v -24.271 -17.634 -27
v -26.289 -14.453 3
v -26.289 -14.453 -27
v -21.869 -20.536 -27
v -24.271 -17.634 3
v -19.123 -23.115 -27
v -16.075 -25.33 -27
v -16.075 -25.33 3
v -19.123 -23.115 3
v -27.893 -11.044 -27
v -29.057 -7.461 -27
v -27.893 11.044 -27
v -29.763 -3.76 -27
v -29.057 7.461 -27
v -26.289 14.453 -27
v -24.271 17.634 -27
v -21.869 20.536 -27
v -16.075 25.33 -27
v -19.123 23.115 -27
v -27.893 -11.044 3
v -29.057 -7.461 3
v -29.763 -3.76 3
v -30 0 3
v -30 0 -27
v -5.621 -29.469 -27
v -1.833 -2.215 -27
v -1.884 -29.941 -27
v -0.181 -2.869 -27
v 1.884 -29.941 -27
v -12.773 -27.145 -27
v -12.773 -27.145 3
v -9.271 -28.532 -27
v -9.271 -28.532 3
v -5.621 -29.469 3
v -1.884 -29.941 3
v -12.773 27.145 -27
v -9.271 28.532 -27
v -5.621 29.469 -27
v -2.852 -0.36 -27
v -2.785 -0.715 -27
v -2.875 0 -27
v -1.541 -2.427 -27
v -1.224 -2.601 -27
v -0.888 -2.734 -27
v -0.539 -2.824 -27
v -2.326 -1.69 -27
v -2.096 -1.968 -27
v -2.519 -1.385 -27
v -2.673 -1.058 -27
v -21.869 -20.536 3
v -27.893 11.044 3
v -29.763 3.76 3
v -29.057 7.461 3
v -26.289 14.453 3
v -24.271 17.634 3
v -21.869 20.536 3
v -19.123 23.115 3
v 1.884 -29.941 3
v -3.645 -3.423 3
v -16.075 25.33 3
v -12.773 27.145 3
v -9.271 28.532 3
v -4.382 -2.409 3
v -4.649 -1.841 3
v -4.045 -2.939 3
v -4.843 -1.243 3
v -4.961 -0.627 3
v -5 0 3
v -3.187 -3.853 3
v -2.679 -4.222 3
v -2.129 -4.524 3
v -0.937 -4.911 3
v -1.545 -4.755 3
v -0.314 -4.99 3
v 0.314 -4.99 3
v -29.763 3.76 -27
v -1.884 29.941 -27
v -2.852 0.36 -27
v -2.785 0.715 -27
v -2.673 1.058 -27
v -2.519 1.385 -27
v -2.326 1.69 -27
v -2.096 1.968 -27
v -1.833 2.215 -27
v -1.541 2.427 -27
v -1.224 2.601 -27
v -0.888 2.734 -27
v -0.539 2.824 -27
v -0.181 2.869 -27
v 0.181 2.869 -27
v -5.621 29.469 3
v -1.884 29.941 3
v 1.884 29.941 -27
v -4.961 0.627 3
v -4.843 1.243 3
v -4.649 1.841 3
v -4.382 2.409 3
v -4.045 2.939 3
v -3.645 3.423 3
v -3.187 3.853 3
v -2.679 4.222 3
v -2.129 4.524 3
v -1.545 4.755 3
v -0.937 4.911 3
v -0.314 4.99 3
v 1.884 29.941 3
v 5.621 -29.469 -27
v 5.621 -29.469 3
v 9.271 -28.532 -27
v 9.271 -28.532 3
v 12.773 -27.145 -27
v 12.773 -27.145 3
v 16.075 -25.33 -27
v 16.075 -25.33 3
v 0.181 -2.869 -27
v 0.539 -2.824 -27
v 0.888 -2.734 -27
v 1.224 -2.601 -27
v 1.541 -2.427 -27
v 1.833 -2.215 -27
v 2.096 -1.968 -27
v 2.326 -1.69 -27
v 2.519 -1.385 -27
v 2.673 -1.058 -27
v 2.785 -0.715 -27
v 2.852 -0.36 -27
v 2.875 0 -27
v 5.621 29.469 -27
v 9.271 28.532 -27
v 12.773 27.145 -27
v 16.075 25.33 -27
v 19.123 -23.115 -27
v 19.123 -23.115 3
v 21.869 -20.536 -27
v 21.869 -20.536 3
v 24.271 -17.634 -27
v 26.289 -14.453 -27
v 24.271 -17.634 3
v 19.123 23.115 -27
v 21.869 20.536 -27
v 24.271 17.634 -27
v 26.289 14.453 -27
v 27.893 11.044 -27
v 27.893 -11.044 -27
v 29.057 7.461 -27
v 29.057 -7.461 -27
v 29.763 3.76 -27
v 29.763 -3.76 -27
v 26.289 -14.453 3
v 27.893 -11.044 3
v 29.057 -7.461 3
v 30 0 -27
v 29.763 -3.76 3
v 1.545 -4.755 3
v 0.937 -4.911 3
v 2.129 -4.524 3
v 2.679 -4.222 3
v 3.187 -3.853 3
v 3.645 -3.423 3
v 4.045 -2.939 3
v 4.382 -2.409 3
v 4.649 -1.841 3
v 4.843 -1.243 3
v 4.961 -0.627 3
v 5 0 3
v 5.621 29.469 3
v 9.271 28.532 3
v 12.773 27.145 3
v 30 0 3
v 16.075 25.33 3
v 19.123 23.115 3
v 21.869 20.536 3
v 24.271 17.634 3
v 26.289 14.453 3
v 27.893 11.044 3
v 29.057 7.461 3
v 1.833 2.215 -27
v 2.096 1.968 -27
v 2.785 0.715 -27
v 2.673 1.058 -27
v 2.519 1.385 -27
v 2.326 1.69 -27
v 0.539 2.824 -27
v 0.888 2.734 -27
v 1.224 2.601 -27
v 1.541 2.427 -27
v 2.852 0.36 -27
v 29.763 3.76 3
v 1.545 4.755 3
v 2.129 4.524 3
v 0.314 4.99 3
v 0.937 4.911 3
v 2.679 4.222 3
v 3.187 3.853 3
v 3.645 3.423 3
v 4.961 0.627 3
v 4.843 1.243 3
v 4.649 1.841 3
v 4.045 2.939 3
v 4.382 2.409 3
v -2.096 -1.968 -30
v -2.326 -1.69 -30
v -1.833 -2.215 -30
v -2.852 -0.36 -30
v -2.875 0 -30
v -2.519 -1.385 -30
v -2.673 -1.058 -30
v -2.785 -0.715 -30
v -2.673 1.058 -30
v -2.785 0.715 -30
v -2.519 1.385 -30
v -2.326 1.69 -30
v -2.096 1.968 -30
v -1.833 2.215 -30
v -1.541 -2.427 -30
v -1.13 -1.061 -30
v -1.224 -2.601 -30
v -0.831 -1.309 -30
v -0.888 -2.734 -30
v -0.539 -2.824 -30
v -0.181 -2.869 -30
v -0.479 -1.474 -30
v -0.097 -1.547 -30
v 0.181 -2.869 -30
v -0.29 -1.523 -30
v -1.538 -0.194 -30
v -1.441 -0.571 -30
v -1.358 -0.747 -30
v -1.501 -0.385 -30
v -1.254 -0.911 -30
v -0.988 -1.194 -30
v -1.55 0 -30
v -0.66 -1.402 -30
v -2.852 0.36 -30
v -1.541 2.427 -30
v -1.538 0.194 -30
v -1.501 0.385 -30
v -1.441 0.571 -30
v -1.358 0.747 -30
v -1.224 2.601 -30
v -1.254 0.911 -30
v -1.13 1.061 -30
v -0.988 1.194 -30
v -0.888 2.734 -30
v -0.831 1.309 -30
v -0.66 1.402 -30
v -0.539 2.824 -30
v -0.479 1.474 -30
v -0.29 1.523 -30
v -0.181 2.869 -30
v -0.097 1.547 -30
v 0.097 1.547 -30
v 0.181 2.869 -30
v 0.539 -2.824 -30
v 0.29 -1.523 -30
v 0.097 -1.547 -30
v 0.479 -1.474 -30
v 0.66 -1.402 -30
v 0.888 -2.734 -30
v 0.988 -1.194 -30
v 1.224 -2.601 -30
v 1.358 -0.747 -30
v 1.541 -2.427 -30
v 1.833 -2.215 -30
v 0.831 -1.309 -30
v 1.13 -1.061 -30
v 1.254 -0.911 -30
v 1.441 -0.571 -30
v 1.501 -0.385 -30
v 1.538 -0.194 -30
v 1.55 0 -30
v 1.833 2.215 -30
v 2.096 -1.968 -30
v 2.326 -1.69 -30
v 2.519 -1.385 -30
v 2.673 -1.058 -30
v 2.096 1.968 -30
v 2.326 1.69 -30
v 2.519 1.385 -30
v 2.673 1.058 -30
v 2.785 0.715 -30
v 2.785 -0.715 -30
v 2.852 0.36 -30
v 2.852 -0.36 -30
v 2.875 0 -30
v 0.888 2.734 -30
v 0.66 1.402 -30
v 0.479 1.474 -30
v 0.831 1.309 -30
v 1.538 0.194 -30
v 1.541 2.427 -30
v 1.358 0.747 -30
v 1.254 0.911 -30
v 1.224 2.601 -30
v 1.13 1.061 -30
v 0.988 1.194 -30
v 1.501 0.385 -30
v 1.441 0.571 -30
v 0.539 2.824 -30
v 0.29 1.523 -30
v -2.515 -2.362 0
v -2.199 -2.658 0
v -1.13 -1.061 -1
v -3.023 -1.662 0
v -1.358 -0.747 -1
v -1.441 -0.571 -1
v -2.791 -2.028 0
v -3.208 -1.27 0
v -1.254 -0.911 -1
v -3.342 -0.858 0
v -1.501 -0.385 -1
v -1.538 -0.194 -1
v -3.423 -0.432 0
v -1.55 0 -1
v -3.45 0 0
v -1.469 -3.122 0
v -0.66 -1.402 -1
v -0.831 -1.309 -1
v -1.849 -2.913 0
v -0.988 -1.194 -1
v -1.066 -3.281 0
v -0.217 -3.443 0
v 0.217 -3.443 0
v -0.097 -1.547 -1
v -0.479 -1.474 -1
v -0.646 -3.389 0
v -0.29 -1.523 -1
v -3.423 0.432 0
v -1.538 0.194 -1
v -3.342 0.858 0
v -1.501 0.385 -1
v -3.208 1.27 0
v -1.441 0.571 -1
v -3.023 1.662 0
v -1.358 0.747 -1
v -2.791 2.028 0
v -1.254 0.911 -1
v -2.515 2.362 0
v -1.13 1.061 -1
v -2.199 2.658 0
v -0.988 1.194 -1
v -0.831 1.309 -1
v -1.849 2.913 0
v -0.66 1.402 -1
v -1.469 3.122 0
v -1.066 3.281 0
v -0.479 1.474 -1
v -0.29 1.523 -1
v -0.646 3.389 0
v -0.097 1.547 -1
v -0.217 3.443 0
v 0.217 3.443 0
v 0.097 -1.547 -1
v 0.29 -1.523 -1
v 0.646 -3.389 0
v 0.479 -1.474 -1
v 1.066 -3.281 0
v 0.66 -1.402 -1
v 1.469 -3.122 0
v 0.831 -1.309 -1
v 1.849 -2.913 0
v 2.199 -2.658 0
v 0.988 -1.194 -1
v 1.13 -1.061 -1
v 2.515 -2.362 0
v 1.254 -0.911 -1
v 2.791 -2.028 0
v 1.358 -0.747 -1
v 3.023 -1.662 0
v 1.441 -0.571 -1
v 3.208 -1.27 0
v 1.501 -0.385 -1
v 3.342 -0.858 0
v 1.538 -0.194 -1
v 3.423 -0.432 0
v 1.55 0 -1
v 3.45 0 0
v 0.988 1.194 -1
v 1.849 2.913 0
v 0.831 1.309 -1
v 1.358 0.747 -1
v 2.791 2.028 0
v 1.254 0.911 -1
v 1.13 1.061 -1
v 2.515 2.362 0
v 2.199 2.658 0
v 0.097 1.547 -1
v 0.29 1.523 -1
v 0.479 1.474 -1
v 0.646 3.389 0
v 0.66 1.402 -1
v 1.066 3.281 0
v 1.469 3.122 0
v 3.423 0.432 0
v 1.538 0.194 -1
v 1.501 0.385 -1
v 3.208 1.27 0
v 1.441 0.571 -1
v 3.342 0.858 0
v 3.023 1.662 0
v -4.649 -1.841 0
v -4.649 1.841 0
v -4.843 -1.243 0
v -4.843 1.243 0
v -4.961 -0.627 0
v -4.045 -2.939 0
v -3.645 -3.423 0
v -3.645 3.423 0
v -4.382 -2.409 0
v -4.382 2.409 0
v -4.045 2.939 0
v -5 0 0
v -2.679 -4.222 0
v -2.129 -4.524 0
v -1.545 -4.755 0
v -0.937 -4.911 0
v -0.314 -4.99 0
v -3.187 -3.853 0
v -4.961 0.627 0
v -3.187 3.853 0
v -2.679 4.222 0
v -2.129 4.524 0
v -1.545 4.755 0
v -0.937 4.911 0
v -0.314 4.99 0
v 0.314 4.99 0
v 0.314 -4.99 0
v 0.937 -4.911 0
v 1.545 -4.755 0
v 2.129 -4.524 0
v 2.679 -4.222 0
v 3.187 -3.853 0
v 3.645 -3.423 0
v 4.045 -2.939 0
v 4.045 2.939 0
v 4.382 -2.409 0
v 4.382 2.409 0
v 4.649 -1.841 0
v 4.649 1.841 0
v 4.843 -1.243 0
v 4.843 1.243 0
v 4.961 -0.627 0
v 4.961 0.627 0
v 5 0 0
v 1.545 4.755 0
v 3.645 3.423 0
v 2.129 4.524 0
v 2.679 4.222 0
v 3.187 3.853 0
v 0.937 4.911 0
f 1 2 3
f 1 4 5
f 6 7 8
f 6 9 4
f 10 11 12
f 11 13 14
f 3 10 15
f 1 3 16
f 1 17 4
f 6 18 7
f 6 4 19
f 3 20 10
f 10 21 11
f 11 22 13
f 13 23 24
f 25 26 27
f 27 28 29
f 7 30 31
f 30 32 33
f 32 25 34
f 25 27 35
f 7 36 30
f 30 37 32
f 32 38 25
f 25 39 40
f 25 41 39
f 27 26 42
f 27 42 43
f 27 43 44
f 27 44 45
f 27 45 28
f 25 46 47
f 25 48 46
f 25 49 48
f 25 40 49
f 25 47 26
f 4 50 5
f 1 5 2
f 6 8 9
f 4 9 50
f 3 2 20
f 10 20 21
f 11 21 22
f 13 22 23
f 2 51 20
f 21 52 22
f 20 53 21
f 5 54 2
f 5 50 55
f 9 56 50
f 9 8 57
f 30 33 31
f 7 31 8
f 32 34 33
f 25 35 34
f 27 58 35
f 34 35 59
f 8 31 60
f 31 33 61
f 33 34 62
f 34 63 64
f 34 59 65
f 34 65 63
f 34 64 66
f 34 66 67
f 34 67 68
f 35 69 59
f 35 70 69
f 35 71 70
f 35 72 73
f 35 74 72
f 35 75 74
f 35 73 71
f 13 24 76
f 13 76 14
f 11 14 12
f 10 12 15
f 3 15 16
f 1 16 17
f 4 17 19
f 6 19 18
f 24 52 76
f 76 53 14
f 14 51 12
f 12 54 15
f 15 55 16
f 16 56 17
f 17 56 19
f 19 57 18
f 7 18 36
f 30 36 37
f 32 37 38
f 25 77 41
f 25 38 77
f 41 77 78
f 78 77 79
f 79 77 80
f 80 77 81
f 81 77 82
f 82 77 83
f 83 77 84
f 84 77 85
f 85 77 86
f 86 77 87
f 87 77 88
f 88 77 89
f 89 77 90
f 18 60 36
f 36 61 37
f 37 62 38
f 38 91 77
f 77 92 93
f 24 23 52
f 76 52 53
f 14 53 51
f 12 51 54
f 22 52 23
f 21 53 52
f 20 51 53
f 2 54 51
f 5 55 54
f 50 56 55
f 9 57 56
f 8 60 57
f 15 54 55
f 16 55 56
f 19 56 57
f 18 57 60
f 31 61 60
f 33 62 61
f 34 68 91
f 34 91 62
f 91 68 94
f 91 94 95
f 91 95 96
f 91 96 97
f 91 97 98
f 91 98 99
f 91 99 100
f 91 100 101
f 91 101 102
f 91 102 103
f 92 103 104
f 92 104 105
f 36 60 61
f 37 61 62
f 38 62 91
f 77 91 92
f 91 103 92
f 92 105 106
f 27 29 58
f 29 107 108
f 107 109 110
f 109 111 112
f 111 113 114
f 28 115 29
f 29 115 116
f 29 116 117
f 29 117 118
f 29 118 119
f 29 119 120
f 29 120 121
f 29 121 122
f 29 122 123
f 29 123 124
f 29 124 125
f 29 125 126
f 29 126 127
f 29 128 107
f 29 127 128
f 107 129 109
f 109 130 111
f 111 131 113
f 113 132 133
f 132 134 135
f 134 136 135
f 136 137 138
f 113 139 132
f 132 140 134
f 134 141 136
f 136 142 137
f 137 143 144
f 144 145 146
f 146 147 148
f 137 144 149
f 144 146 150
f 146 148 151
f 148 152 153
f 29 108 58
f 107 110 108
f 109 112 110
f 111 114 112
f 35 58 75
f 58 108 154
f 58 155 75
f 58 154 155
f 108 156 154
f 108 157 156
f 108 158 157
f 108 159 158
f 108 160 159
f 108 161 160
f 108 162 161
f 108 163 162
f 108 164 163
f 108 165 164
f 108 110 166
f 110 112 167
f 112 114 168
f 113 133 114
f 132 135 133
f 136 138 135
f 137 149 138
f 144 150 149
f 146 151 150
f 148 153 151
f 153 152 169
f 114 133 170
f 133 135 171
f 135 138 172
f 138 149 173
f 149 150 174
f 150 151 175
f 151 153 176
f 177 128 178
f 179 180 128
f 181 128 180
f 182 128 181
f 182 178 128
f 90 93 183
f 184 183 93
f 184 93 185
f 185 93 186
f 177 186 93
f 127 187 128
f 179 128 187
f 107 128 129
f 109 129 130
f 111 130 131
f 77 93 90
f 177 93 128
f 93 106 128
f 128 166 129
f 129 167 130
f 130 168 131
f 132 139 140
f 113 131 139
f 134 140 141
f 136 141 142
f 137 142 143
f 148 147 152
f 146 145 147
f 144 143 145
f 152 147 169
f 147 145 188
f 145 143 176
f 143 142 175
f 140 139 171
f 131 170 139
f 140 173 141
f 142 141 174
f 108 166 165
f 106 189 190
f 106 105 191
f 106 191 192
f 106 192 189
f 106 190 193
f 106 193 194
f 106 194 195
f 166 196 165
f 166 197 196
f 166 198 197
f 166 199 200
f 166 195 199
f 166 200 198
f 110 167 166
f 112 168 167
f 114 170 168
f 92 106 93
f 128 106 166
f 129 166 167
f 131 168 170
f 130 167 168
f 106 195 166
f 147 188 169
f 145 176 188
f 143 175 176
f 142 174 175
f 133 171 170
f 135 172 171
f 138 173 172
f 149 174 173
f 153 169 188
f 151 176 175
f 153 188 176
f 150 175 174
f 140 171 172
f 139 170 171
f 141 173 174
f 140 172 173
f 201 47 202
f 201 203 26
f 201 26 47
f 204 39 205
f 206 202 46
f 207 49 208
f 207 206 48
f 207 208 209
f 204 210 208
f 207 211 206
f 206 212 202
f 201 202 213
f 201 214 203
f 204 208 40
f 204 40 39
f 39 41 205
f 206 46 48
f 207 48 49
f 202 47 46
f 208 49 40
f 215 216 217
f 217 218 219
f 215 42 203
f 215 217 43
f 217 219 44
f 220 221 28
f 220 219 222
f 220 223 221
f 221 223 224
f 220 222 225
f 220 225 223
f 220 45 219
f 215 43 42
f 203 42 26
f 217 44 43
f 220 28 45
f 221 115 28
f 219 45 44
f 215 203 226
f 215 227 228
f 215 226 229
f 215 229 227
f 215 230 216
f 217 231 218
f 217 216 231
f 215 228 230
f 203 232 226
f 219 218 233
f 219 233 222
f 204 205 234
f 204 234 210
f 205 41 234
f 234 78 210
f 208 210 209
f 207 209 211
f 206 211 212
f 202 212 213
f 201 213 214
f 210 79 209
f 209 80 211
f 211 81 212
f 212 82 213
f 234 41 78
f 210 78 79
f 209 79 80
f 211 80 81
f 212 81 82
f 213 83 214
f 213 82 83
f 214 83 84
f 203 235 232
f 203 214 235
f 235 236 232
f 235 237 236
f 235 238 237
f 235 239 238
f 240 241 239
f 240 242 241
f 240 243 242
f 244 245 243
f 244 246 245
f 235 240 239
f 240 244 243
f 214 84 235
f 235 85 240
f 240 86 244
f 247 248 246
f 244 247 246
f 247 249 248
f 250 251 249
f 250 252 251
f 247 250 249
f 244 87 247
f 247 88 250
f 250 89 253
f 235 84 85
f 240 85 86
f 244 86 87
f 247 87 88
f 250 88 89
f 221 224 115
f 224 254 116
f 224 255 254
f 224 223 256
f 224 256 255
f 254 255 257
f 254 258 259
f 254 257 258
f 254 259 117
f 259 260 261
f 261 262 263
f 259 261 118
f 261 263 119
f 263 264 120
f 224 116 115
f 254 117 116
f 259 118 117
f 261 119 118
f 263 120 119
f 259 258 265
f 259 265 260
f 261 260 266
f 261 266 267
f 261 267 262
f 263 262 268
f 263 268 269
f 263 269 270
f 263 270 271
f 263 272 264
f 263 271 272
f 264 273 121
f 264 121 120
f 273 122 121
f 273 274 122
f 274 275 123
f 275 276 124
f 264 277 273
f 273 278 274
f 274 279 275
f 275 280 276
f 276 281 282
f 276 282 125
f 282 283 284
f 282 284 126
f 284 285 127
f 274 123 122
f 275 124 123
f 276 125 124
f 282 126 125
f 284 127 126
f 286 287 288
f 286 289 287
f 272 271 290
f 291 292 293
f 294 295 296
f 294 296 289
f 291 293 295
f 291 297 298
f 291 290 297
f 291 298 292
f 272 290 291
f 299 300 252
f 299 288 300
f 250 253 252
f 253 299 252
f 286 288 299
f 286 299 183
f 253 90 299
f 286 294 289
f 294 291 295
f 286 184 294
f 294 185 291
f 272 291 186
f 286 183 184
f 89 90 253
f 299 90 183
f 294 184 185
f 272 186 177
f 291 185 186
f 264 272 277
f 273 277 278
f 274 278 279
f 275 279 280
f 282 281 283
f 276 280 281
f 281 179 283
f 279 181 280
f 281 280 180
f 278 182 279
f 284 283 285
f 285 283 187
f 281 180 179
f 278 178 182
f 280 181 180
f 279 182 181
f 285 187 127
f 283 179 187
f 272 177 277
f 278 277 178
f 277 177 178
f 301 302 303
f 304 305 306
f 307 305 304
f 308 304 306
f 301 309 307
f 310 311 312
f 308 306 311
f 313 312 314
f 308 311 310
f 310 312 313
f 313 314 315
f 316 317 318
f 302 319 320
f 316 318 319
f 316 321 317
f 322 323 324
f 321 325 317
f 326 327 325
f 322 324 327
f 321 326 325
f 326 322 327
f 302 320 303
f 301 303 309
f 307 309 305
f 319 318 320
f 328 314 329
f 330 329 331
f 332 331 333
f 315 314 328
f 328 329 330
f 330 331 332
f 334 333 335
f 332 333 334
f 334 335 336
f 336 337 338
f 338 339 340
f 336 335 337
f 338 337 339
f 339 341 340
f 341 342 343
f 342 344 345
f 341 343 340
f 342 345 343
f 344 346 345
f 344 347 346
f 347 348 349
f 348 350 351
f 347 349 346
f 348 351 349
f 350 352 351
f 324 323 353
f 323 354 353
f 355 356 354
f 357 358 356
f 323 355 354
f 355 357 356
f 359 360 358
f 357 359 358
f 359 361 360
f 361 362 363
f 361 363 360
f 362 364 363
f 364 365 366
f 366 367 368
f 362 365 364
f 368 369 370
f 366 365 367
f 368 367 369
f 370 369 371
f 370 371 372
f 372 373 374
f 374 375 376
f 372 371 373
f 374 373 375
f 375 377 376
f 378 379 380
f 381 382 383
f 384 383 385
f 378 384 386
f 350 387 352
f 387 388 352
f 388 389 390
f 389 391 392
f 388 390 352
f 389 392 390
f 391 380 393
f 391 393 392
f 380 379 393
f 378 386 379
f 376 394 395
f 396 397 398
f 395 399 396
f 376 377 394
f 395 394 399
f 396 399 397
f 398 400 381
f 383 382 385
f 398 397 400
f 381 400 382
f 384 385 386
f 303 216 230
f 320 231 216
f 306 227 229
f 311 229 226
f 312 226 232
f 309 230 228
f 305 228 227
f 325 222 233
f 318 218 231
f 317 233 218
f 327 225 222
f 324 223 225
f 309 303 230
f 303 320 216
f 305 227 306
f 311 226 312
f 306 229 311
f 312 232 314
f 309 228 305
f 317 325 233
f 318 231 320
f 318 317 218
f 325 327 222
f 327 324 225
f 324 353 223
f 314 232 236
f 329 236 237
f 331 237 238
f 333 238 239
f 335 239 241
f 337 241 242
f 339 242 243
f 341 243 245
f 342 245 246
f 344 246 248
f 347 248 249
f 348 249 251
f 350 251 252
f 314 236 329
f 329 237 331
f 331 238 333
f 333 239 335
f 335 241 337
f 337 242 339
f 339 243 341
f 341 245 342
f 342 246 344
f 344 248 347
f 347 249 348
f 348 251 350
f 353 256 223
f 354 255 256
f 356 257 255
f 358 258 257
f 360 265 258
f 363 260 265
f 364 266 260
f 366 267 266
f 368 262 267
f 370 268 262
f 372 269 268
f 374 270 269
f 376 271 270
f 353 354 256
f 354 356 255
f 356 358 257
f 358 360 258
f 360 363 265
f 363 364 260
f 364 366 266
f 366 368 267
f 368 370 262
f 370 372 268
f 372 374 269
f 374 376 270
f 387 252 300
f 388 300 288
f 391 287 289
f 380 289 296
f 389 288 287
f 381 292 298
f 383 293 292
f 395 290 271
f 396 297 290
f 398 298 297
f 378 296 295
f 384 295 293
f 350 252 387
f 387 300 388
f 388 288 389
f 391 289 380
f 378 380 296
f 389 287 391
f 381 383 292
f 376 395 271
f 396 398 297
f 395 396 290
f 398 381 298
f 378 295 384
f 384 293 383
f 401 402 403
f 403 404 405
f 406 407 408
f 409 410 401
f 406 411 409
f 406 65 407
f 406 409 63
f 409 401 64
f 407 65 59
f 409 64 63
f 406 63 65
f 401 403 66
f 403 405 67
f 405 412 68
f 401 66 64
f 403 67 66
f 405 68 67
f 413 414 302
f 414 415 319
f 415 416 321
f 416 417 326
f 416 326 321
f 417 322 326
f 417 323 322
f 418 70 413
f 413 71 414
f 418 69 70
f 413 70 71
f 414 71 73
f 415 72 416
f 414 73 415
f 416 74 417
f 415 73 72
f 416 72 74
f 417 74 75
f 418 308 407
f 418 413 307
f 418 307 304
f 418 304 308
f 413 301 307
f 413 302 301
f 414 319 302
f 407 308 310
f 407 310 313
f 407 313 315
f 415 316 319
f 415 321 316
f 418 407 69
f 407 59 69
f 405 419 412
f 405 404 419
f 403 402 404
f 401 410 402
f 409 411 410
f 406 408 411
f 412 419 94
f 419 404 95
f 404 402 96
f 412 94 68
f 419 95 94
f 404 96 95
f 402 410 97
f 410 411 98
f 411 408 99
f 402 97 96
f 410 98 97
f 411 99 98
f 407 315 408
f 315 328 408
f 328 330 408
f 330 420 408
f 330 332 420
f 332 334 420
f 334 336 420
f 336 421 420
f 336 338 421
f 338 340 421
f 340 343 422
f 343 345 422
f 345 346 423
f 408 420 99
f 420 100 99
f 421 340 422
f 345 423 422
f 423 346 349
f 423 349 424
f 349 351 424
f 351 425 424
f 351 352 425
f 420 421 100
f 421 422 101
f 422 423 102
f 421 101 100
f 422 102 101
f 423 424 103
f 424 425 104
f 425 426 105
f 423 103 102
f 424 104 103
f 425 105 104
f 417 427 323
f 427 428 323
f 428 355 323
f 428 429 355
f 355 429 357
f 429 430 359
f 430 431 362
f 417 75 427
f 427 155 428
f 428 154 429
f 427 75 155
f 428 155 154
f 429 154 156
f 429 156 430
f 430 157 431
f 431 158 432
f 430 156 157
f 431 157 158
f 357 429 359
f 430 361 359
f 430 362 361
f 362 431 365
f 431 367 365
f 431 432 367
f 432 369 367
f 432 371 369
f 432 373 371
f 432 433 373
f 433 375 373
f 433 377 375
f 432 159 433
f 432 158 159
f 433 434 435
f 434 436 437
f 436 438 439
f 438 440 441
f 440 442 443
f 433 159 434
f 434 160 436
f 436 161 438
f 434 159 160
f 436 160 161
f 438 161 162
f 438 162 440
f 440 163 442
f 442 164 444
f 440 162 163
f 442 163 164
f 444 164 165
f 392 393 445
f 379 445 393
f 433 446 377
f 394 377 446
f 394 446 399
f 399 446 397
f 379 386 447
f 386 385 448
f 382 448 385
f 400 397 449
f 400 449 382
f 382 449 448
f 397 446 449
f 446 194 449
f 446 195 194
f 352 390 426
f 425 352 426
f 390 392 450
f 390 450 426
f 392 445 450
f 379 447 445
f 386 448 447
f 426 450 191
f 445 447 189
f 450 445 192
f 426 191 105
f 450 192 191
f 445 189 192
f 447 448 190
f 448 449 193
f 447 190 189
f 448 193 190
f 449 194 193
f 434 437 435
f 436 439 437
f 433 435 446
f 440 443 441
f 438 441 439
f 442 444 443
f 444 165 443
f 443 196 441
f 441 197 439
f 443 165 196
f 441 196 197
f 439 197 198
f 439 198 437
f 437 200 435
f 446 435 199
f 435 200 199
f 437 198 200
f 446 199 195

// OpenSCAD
$fn = 50;


difference() {
	union() {
		translate(v = [0, 0, -27.0000000000]) {
			cylinder(h = 30, r = 30.0000000000);
		}
		#translate(v = [0, 0, -30.0000000000]) {
			cylinder(h = 30, r = 2.8750000000);
		}
	}
	union() {
		translate(v = [0, 0, 0]) {
			rotate(a = [0, 0, 0]) {
				difference() {
					union() {
						translate(v = [0, 0, -30.0000000000]) {
							cylinder(h = 30, r = 1.2500000000);
						}
						translate(v = [0, 0, -1.0000000000]) {
							cylinder(h = 1.0000000000, r1 = 1.5500000000, r2 = 3.4500000000);
						}
						translate(v = [0, 0, -30.0000000000]) {
							cylinder(h = 30, r = 1.5500000000);
						}
						translate(v = [0, 0, -30.0000000000]) {
							cylinder(h = 30, r = 1.2500000000);
						}
					}
					union();
				}
			}
		}
		#cylinder(h = 3, r = 5.0000000000);
	}
}
